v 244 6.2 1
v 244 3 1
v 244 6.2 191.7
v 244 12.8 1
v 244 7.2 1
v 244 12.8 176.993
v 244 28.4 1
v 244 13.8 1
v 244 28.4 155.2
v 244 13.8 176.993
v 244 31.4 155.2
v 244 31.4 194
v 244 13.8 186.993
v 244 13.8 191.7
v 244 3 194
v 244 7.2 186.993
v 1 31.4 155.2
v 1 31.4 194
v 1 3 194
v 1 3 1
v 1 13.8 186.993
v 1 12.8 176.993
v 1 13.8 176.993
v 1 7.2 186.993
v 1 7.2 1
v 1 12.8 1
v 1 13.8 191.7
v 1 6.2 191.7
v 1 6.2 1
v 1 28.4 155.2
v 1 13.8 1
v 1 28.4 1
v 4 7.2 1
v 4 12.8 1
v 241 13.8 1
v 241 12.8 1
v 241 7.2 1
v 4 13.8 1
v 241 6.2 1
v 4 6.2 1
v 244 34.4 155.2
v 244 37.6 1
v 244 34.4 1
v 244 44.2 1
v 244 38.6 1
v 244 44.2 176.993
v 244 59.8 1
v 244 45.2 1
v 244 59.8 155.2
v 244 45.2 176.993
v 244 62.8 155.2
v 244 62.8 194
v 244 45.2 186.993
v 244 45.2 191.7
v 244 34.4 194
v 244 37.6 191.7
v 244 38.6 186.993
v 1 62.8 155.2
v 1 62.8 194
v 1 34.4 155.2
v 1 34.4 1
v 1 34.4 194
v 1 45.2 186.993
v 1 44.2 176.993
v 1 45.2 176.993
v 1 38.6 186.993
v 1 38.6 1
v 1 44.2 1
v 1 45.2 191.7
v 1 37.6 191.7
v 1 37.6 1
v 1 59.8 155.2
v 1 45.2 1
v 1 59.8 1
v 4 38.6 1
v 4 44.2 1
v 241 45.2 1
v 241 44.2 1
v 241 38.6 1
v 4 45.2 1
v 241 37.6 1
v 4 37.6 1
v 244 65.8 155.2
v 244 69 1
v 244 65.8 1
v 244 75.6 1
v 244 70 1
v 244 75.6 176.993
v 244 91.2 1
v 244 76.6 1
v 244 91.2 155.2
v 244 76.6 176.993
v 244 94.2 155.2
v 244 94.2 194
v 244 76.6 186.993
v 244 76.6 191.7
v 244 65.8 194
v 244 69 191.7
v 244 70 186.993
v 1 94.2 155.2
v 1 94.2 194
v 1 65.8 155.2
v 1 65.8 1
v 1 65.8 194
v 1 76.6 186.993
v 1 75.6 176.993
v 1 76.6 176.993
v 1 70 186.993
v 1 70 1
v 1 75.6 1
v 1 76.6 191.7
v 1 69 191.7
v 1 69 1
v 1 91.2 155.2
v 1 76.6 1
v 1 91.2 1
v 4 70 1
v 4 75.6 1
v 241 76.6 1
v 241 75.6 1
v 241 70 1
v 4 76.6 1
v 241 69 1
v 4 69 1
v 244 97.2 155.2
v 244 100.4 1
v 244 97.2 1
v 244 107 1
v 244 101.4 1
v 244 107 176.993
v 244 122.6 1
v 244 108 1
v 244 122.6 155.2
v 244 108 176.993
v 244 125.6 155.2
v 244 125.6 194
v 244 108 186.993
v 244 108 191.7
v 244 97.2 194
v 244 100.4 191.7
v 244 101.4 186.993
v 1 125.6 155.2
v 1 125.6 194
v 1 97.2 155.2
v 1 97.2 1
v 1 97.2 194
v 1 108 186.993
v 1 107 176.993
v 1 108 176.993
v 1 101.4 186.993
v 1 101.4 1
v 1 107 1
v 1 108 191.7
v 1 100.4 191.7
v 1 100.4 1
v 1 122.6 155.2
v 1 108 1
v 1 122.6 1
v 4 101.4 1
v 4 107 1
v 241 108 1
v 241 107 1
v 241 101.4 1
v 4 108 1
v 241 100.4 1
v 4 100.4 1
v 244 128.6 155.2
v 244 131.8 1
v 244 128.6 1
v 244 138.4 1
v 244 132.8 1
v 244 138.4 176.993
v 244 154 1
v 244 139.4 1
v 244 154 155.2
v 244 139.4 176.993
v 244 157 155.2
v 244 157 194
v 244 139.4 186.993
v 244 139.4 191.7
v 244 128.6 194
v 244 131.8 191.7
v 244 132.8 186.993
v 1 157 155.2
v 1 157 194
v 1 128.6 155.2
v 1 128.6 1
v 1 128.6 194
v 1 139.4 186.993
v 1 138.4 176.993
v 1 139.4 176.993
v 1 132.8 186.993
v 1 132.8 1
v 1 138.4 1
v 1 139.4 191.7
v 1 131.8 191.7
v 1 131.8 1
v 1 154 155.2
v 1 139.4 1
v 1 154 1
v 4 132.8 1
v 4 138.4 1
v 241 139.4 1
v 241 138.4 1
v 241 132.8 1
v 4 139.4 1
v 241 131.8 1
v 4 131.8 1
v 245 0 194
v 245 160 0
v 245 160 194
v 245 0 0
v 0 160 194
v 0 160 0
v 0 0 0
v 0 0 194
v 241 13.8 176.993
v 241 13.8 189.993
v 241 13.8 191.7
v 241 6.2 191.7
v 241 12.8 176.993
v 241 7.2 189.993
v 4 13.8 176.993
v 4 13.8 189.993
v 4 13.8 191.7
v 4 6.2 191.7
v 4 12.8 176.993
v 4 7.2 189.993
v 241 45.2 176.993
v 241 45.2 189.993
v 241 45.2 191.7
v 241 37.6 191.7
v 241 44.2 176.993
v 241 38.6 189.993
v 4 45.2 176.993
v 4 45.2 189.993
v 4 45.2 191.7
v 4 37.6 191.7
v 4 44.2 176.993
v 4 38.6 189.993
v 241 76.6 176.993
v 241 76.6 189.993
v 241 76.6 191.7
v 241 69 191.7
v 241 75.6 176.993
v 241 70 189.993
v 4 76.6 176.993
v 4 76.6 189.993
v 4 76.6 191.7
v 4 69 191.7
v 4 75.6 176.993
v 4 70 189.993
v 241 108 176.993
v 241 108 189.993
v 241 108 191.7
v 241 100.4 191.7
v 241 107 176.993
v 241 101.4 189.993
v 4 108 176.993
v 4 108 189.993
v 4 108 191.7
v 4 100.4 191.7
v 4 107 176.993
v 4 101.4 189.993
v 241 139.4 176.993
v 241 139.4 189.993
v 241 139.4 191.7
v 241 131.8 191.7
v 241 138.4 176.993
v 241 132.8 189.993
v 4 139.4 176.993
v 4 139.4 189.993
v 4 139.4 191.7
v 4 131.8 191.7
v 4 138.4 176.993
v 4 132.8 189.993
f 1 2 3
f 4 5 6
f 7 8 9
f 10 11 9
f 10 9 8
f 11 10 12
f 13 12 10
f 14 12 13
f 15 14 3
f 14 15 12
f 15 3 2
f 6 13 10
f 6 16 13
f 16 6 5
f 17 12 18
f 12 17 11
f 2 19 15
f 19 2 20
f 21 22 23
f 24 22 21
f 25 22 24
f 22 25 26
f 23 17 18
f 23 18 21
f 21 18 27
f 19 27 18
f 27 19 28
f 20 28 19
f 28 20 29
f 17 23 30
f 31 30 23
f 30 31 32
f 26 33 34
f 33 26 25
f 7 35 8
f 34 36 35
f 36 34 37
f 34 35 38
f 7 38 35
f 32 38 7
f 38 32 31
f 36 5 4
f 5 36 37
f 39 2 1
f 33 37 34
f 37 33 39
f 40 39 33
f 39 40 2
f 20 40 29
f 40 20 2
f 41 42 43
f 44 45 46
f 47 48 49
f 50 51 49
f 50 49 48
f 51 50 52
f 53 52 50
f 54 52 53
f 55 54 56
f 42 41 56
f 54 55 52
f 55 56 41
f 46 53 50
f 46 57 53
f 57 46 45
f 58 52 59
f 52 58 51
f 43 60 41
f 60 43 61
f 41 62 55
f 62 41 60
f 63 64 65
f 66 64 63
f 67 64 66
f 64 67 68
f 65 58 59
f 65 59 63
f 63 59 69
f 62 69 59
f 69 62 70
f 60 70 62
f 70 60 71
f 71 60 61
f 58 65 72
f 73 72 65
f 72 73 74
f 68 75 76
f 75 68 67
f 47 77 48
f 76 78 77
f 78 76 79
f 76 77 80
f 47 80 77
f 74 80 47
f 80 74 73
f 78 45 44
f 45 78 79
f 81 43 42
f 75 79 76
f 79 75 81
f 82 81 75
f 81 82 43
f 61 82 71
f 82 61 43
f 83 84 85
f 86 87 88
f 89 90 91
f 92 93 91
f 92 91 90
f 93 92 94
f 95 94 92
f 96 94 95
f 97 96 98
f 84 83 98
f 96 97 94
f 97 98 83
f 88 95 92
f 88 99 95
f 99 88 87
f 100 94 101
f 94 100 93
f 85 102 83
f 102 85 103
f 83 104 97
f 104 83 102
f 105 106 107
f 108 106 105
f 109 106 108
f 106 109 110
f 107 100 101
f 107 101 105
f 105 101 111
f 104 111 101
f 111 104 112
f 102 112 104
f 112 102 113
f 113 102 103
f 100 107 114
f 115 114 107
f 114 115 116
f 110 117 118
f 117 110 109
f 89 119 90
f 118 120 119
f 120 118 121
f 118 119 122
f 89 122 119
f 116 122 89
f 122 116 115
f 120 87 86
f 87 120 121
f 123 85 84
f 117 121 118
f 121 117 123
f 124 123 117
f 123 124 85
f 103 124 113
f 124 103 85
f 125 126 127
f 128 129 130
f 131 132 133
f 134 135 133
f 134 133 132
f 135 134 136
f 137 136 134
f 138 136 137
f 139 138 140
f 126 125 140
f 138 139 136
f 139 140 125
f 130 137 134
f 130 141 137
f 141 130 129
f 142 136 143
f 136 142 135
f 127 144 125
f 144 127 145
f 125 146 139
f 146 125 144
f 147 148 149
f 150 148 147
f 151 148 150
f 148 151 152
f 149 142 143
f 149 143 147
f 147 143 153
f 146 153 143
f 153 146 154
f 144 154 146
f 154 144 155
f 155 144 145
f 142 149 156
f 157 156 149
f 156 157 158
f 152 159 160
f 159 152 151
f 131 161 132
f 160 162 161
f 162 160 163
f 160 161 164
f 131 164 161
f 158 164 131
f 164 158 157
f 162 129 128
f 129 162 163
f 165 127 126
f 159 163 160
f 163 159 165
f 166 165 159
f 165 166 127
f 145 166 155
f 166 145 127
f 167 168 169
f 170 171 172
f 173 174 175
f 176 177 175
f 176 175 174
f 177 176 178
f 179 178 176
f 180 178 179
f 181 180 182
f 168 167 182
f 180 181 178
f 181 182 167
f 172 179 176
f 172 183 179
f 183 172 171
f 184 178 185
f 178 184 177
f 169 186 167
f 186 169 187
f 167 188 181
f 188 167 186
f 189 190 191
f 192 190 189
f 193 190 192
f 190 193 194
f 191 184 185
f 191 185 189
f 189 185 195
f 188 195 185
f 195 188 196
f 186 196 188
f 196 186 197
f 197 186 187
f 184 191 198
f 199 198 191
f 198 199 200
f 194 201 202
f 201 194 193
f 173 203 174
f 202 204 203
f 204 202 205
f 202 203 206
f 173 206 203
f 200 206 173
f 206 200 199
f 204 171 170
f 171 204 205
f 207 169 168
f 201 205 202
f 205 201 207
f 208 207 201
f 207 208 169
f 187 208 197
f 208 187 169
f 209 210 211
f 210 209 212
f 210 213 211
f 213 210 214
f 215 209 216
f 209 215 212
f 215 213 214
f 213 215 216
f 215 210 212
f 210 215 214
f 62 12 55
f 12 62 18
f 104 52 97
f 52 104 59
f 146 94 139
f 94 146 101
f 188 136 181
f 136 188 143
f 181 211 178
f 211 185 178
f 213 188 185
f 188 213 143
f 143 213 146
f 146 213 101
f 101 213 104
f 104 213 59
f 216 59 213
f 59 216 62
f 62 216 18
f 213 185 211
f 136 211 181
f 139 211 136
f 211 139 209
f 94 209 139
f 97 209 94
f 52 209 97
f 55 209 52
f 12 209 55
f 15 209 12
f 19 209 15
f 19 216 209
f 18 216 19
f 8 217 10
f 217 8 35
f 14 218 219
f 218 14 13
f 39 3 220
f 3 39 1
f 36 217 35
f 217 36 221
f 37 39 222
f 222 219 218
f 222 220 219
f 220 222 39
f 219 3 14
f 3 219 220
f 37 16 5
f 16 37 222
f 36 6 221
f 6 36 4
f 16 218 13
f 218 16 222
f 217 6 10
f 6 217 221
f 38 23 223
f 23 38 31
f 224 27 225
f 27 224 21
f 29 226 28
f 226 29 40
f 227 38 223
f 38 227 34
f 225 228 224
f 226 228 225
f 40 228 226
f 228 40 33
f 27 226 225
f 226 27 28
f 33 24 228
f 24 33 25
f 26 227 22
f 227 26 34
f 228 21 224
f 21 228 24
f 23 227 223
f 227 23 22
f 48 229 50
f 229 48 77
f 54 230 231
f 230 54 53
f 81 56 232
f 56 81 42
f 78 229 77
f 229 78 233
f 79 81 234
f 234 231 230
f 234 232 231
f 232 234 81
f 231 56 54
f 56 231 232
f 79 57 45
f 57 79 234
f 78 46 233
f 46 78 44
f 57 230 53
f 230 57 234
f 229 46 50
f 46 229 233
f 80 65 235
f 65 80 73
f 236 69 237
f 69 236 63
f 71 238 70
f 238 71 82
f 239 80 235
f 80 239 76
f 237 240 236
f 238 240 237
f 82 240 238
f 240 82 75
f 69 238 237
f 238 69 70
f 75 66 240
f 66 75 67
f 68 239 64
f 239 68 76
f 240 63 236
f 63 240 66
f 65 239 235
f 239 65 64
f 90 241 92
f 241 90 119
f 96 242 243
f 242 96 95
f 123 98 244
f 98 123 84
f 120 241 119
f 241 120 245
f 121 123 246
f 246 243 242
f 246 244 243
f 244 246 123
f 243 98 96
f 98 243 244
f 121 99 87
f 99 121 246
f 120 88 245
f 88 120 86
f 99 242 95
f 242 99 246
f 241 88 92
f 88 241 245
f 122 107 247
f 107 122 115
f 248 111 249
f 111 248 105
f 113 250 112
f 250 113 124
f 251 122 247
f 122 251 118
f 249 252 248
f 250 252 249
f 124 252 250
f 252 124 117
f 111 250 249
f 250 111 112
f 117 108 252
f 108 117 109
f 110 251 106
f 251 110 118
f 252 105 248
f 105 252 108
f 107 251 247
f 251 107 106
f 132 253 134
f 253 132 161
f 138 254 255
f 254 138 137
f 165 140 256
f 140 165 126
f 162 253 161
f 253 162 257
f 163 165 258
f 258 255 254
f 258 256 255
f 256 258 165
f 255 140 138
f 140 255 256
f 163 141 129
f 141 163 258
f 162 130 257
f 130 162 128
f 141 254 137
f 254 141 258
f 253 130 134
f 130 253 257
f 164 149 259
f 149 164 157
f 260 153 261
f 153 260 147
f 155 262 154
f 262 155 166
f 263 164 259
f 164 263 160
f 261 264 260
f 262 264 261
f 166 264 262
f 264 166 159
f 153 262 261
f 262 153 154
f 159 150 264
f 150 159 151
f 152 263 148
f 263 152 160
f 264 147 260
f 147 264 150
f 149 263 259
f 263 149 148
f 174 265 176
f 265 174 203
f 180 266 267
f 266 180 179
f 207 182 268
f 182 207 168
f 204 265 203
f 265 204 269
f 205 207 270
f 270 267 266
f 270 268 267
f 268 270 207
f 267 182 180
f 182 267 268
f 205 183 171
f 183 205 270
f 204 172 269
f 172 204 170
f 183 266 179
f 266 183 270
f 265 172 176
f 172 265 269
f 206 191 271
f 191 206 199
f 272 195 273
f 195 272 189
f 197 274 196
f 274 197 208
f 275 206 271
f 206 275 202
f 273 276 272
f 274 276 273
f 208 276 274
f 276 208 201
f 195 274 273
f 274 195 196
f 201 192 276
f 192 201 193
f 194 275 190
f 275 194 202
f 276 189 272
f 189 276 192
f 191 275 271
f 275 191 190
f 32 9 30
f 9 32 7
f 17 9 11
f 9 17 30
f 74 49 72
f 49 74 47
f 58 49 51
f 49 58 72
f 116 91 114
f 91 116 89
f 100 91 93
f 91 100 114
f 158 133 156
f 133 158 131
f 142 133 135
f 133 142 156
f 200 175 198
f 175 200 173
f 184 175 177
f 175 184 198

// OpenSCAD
include <BOSL/constants.scad>
use <BOSL/transforms.scad>
use <BOSL/shapes.scad>
// use <BOSL/masks.scad>
// use <BOSL/math.scad>

lw=0.50;  // line width
lh=0.2;   // layer height

w=245;    // width
h=160;    // height
d=194;    // depth

n=5;      // number of drawers
side_wall=2*lw;          // side wall thickness
floor_wall=3*side_wall;  // horizontal wall thickness

// Prototype size
// w=50;              // width
// h=(160-4*lw)/5*2;  // height
// d=50;              // depth
// n=2;               // number of drawers

dcw=w-2*side_wall;                // drawer cavity width
dcd=d-side_wall;                  // drawer cavity depth
dch=(h-floor_wall)/n-floor_wall;  // drawer cavity height

cl=0.3;      // sliding clearance

track_h=10;                    // drawer track height (to centre)
track_w=3;                    // drawer track width (off side_wall)
track_pin_dia=5;              // drawer track sliding pin diameter
track_offset=2*side_wall+cl;  // track offset (inset from front)

dw=dcw-2*cl;  // drawer width
dd=dcd-cl;    // drawer depth
dh=dch-2*cl;  // drawer height

hw=min(dw/2,50);  // drawer handle width
hd=15+side_wall;  // drawer handle depth
hh=min(dh/2,15);  // drawer handle height


echo(lw=lw, lh=lh, w=w, h=h, d=d, n=n, side_wall=side_wall, floor_wall=floor_wall, cl=cl,
     dcw=dcw, dcd=dcd, dch=dch, dw=dw, dd=dd, dh=dh);

*right_half(s=dw*2,x=side_wall+1)
  assy();
zmove(d) xrot(-90) drawer_box();
// drawer(dogbones=true);
// right_track();

module assy() {
  drawer_box();
  for(i=[0:n-1]) translate([w/2,dd/2-side_wall,(dch+floor_wall)*i+dh/2+floor_wall]) drawer();
}

module drawer_box() {
  union() {
    difference() {
      // base
      cuboid([w,d,h], align=V_ALLPOS);
      // drawer cavities
      translate([side_wall,-1,floor_wall]) for(i=[0:n-1]) {
        zmove((dch+floor_wall)*i) cuboid([dcw,dcd+1,dch], align=V_ALLPOS);
      }
    }
    xmove(w/2) for(i=[0:n-1]) zmove((dch+floor_wall)*i) {
      // tracks
      xmove(dcw/2)  right_track();
      xmove(-dcw/2) left_track();
    }
    // floor stiffeners
    for(i=[1:n]) translate([w/2,d/5,(dch+floor_wall)*i])
      cuboid([w,4*d/5,2*floor_wall],align=V_BACK);
  }
}

module right_track() {
  slide_dia=track_pin_dia+2*cl;
  track_offset_inner=track_offset+side_wall*cos(45);
  track_w_clear=track_w+2;

  zmove(track_h) difference() {
    // track body
    ymove(track_offset)
      cuboid([track_w,dcd-track_offset,slide_dia+2*side_wall], align=V_LEFT+V_BACK);
    // track slot
    hull() {
      translate([1,dcd])
        cuboid([track_w_clear,1,slide_dia], align=V_LEFT+V_FRONT);
      translate([1,track_offset_inner])
        yflip() right_triangle([track_w_clear,track_w_clear,slide_dia],
                               align=V_LEFT+V_FRONT, orient=ORIENT_Z);
    }
    // pin entry
    hull() {
      translate([1,track_offset_inner,2*side_wall])
        yflip() right_triangle([track_w_clear,track_w_clear,slide_dia],
                               align=V_LEFT+V_FRONT, orient=ORIENT_Z);
      translate([1,track_offset_inner+3*track_w,2*side_wall])
        yflip() right_triangle([track_w_clear,track_w_clear,slide_dia],
                               align=V_LEFT+V_FRONT, orient=ORIENT_Z);
    }
  }
}

module left_track() {
  xflip() right_track();
}

module drawer(dogbones=false) {
  dbw=dw-2*(track_w+cl);    // drawer body width
  dbh=dh-track_h-cl;        // drawer body height

  union() {
    difference() {
      union() {
        // body shell
        zmove(-dh/2) cuboid([dbw,dd,dbh],align=V_TOP);
        // face plate
        ymove(-(dd-side_wall)/2) cuboid([dw+2*side_wall,side_wall,dh+floor_wall]);
        //   face plate supports
        translate([-side_wall/2,-dd/2+side_wall,dh/2-(dh-dbh)])
          xspread(spacing=dbw-side_wall, n=2)
            right_triangle([side_wall,max(dh-dbh,dd/3),dh-dbh], orient=ORIENT_X);
        // track pin
        translate([0,(dd-10)/2,-dh/2+track_h-floor_wall])
          cyl(h=dw, d=track_pin_dia, circum=false, realign=true, orient=ORIENT_X);
      }
      // cavity
      zmove(-dh/2+floor_wall) cuboid([dbw-2*side_wall,dd-2*side_wall,dh], align=V_TOP);
    }

    // Handle
    ymove(-dd/2) difference() {
      cuboid([hw,hd,hh], chamfer=2, edges=EDGES_Y_BOT+EDGES_Z_FR+EDGE_BOT_FR, align=V_FRONT);
      translate([0,0,floor_wall]) cuboid([hw-2*side_wall,hd-side_wall,hh],
                                   chamfer=2-side_wall*cos(45),
                                   edges=EDGES_Y_BOT+EDGES_Z_FR+EDGE_BOT_FR, align=V_FRONT);
    }
    if(dogbones) translate([0,-dd/2+side_wall/2,-dh/2]) {
      xspread(spacing=dw-5) cyl(h=lh,d=10,align=V_TOP);
    }
  }
}

function up(x)=ceil(x/lw)*lw;
